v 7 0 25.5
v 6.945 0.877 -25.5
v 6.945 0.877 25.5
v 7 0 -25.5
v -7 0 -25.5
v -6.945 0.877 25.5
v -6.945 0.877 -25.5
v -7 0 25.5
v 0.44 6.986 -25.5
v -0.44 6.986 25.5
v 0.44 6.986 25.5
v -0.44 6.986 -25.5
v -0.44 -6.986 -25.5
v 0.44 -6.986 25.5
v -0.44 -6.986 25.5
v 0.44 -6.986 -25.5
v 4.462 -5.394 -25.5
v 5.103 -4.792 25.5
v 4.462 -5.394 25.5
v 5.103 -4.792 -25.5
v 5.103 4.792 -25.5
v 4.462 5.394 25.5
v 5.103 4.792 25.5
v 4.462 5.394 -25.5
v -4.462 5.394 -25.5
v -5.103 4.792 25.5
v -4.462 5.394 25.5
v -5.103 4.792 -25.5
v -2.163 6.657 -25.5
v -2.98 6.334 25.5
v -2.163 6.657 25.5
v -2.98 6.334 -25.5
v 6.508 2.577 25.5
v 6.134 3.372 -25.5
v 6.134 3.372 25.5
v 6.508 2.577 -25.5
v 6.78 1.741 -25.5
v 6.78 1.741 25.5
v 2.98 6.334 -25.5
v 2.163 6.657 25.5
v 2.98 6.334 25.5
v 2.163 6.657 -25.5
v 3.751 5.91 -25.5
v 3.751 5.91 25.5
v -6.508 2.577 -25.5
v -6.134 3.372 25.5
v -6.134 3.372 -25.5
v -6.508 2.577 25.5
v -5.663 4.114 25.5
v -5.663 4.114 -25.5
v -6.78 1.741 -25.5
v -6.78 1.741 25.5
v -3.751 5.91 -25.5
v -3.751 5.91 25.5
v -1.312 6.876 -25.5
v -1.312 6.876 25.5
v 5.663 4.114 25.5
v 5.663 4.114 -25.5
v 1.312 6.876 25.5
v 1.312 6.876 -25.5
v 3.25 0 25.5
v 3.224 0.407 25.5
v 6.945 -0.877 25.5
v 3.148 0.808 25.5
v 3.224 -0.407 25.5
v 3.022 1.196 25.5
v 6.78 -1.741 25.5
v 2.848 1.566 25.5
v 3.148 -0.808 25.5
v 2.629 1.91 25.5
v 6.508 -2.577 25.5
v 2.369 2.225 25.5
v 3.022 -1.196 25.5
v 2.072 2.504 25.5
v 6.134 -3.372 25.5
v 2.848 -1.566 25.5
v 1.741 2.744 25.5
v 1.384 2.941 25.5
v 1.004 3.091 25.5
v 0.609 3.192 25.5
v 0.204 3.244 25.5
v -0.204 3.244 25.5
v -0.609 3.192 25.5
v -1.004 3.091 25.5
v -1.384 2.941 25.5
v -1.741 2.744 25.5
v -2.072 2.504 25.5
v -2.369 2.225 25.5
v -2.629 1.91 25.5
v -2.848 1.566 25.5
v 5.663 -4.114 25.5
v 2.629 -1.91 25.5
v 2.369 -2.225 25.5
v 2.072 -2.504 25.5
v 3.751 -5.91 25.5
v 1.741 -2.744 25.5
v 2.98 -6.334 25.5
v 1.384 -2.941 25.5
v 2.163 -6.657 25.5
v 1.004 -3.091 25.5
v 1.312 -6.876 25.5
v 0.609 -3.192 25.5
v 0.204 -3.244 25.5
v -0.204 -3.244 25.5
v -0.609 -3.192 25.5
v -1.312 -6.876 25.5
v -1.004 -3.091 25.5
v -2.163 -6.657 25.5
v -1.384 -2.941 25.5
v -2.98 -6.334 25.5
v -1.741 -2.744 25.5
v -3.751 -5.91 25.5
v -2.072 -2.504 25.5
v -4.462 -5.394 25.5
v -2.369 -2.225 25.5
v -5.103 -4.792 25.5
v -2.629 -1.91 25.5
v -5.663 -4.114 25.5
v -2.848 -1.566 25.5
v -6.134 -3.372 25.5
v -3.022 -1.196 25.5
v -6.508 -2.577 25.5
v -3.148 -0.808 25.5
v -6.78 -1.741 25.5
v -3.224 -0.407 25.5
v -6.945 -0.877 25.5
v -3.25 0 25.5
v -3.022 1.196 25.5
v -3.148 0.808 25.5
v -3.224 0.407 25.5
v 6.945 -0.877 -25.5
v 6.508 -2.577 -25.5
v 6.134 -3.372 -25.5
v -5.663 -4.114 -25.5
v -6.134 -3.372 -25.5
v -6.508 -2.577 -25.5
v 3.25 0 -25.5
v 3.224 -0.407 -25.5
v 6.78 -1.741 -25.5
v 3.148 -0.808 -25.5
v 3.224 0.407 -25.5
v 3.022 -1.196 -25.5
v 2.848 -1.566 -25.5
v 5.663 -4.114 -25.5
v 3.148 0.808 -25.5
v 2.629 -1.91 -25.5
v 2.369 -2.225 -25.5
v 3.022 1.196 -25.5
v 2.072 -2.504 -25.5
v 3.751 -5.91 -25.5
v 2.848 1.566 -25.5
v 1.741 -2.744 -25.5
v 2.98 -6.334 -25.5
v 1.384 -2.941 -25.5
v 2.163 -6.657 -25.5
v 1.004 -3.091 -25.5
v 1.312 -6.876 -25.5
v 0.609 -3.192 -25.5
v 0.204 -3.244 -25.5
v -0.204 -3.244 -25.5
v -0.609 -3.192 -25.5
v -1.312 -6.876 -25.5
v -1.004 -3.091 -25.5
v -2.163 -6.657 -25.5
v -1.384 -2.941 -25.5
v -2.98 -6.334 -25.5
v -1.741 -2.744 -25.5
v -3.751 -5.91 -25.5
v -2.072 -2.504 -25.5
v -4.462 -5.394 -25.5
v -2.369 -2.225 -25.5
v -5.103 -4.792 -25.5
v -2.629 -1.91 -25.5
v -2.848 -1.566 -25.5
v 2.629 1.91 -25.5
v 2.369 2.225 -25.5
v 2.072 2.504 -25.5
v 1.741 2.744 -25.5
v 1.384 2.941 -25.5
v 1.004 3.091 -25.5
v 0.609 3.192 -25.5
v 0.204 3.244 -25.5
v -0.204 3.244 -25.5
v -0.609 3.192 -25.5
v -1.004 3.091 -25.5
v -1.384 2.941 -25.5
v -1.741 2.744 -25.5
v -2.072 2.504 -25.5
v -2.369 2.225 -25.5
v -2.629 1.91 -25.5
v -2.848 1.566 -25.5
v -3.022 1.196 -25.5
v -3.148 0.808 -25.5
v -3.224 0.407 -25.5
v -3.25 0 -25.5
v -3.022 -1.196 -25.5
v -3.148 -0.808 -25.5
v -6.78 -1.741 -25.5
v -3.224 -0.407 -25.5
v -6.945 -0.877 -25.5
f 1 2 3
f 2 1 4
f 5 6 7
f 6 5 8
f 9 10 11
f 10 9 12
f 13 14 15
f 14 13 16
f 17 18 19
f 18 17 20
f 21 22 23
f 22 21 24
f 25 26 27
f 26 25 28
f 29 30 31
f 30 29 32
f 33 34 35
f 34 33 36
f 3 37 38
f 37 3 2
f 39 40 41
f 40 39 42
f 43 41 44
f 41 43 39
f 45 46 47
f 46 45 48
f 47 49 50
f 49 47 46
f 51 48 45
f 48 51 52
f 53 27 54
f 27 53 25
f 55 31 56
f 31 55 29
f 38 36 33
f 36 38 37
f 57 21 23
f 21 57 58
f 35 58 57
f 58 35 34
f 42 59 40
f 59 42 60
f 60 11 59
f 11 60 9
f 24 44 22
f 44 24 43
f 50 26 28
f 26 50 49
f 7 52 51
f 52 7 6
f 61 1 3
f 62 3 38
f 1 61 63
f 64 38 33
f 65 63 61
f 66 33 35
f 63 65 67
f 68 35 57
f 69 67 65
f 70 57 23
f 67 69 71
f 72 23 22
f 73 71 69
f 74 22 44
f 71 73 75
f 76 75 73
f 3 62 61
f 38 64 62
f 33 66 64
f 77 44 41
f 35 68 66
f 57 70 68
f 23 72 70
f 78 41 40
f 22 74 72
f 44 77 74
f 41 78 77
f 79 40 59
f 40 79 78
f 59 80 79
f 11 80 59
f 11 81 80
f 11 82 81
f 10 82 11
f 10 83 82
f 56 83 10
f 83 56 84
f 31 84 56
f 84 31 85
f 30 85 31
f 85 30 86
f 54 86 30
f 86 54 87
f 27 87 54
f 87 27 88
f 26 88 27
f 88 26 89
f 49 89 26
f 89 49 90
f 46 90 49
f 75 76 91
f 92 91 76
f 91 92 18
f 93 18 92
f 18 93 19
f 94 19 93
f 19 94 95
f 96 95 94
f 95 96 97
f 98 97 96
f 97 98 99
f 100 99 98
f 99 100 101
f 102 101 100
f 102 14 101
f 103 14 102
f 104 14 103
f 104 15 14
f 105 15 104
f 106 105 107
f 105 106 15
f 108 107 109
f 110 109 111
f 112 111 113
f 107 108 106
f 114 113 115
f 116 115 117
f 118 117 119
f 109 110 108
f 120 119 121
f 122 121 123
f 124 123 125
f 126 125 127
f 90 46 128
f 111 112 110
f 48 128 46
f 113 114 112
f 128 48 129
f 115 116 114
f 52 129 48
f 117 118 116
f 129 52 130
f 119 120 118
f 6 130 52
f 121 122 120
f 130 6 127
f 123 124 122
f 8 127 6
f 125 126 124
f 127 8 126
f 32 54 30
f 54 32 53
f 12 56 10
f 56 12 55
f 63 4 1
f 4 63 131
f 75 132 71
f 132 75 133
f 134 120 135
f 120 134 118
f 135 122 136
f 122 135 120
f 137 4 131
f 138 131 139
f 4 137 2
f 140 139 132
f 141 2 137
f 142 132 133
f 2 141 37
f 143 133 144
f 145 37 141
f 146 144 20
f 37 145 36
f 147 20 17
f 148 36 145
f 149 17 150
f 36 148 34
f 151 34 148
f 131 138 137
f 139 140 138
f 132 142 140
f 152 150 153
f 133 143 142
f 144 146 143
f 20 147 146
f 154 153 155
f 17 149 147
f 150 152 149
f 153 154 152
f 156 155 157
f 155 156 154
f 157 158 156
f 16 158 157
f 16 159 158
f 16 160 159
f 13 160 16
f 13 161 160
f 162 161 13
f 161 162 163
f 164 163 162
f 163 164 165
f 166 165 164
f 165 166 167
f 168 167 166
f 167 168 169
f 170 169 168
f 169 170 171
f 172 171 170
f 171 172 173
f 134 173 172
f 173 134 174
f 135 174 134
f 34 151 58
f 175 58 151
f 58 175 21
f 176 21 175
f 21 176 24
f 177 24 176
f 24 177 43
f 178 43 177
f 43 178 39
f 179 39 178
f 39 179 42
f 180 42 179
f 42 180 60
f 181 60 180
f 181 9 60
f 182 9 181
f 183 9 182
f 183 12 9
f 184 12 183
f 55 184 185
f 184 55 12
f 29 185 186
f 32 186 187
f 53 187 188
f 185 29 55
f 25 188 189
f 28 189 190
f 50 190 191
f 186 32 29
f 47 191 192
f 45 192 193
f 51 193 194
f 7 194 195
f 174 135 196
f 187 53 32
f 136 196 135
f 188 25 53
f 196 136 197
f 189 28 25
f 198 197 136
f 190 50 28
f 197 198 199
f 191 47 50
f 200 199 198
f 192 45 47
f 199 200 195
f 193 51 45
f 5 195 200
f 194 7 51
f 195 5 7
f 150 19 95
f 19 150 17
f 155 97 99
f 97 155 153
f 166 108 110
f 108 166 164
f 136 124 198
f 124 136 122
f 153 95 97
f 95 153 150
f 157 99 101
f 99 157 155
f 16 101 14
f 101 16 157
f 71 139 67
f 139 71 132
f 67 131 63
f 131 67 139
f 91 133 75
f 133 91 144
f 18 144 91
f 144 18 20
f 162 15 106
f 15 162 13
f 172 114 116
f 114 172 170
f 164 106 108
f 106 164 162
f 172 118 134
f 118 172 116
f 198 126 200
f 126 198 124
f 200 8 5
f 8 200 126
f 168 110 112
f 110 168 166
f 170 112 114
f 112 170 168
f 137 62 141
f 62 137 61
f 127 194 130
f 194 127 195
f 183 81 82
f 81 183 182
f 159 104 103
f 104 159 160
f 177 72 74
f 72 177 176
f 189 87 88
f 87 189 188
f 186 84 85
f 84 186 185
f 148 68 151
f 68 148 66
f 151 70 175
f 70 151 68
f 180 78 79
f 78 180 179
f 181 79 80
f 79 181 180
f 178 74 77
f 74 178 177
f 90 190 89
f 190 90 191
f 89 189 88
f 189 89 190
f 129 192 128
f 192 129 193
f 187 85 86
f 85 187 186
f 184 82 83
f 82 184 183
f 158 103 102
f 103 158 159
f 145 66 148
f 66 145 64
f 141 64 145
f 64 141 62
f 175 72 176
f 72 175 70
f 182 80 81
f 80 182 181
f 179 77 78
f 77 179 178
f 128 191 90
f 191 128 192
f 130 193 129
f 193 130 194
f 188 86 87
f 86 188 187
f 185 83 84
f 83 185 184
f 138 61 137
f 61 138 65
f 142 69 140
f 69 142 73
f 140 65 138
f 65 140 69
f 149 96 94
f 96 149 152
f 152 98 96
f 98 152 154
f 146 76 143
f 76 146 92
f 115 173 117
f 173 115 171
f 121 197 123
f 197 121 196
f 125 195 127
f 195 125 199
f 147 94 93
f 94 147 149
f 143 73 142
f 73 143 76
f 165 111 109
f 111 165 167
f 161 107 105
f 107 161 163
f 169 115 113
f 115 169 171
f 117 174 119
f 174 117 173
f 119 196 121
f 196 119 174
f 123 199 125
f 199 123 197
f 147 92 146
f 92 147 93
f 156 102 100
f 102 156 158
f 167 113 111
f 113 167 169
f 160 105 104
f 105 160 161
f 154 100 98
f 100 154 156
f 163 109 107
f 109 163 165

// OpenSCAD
$fn = 50;


difference() {
	union() {
		translate(v = [0, 0, -25.5000000000]) {
			cylinder(h = 51, r = 7.0000000000);
		}
	}
	union() {
		translate(v = [0, 0, -100.0000000000]) {
			cylinder(h = 200, r = 3.2500000000);
		}
	}
}
